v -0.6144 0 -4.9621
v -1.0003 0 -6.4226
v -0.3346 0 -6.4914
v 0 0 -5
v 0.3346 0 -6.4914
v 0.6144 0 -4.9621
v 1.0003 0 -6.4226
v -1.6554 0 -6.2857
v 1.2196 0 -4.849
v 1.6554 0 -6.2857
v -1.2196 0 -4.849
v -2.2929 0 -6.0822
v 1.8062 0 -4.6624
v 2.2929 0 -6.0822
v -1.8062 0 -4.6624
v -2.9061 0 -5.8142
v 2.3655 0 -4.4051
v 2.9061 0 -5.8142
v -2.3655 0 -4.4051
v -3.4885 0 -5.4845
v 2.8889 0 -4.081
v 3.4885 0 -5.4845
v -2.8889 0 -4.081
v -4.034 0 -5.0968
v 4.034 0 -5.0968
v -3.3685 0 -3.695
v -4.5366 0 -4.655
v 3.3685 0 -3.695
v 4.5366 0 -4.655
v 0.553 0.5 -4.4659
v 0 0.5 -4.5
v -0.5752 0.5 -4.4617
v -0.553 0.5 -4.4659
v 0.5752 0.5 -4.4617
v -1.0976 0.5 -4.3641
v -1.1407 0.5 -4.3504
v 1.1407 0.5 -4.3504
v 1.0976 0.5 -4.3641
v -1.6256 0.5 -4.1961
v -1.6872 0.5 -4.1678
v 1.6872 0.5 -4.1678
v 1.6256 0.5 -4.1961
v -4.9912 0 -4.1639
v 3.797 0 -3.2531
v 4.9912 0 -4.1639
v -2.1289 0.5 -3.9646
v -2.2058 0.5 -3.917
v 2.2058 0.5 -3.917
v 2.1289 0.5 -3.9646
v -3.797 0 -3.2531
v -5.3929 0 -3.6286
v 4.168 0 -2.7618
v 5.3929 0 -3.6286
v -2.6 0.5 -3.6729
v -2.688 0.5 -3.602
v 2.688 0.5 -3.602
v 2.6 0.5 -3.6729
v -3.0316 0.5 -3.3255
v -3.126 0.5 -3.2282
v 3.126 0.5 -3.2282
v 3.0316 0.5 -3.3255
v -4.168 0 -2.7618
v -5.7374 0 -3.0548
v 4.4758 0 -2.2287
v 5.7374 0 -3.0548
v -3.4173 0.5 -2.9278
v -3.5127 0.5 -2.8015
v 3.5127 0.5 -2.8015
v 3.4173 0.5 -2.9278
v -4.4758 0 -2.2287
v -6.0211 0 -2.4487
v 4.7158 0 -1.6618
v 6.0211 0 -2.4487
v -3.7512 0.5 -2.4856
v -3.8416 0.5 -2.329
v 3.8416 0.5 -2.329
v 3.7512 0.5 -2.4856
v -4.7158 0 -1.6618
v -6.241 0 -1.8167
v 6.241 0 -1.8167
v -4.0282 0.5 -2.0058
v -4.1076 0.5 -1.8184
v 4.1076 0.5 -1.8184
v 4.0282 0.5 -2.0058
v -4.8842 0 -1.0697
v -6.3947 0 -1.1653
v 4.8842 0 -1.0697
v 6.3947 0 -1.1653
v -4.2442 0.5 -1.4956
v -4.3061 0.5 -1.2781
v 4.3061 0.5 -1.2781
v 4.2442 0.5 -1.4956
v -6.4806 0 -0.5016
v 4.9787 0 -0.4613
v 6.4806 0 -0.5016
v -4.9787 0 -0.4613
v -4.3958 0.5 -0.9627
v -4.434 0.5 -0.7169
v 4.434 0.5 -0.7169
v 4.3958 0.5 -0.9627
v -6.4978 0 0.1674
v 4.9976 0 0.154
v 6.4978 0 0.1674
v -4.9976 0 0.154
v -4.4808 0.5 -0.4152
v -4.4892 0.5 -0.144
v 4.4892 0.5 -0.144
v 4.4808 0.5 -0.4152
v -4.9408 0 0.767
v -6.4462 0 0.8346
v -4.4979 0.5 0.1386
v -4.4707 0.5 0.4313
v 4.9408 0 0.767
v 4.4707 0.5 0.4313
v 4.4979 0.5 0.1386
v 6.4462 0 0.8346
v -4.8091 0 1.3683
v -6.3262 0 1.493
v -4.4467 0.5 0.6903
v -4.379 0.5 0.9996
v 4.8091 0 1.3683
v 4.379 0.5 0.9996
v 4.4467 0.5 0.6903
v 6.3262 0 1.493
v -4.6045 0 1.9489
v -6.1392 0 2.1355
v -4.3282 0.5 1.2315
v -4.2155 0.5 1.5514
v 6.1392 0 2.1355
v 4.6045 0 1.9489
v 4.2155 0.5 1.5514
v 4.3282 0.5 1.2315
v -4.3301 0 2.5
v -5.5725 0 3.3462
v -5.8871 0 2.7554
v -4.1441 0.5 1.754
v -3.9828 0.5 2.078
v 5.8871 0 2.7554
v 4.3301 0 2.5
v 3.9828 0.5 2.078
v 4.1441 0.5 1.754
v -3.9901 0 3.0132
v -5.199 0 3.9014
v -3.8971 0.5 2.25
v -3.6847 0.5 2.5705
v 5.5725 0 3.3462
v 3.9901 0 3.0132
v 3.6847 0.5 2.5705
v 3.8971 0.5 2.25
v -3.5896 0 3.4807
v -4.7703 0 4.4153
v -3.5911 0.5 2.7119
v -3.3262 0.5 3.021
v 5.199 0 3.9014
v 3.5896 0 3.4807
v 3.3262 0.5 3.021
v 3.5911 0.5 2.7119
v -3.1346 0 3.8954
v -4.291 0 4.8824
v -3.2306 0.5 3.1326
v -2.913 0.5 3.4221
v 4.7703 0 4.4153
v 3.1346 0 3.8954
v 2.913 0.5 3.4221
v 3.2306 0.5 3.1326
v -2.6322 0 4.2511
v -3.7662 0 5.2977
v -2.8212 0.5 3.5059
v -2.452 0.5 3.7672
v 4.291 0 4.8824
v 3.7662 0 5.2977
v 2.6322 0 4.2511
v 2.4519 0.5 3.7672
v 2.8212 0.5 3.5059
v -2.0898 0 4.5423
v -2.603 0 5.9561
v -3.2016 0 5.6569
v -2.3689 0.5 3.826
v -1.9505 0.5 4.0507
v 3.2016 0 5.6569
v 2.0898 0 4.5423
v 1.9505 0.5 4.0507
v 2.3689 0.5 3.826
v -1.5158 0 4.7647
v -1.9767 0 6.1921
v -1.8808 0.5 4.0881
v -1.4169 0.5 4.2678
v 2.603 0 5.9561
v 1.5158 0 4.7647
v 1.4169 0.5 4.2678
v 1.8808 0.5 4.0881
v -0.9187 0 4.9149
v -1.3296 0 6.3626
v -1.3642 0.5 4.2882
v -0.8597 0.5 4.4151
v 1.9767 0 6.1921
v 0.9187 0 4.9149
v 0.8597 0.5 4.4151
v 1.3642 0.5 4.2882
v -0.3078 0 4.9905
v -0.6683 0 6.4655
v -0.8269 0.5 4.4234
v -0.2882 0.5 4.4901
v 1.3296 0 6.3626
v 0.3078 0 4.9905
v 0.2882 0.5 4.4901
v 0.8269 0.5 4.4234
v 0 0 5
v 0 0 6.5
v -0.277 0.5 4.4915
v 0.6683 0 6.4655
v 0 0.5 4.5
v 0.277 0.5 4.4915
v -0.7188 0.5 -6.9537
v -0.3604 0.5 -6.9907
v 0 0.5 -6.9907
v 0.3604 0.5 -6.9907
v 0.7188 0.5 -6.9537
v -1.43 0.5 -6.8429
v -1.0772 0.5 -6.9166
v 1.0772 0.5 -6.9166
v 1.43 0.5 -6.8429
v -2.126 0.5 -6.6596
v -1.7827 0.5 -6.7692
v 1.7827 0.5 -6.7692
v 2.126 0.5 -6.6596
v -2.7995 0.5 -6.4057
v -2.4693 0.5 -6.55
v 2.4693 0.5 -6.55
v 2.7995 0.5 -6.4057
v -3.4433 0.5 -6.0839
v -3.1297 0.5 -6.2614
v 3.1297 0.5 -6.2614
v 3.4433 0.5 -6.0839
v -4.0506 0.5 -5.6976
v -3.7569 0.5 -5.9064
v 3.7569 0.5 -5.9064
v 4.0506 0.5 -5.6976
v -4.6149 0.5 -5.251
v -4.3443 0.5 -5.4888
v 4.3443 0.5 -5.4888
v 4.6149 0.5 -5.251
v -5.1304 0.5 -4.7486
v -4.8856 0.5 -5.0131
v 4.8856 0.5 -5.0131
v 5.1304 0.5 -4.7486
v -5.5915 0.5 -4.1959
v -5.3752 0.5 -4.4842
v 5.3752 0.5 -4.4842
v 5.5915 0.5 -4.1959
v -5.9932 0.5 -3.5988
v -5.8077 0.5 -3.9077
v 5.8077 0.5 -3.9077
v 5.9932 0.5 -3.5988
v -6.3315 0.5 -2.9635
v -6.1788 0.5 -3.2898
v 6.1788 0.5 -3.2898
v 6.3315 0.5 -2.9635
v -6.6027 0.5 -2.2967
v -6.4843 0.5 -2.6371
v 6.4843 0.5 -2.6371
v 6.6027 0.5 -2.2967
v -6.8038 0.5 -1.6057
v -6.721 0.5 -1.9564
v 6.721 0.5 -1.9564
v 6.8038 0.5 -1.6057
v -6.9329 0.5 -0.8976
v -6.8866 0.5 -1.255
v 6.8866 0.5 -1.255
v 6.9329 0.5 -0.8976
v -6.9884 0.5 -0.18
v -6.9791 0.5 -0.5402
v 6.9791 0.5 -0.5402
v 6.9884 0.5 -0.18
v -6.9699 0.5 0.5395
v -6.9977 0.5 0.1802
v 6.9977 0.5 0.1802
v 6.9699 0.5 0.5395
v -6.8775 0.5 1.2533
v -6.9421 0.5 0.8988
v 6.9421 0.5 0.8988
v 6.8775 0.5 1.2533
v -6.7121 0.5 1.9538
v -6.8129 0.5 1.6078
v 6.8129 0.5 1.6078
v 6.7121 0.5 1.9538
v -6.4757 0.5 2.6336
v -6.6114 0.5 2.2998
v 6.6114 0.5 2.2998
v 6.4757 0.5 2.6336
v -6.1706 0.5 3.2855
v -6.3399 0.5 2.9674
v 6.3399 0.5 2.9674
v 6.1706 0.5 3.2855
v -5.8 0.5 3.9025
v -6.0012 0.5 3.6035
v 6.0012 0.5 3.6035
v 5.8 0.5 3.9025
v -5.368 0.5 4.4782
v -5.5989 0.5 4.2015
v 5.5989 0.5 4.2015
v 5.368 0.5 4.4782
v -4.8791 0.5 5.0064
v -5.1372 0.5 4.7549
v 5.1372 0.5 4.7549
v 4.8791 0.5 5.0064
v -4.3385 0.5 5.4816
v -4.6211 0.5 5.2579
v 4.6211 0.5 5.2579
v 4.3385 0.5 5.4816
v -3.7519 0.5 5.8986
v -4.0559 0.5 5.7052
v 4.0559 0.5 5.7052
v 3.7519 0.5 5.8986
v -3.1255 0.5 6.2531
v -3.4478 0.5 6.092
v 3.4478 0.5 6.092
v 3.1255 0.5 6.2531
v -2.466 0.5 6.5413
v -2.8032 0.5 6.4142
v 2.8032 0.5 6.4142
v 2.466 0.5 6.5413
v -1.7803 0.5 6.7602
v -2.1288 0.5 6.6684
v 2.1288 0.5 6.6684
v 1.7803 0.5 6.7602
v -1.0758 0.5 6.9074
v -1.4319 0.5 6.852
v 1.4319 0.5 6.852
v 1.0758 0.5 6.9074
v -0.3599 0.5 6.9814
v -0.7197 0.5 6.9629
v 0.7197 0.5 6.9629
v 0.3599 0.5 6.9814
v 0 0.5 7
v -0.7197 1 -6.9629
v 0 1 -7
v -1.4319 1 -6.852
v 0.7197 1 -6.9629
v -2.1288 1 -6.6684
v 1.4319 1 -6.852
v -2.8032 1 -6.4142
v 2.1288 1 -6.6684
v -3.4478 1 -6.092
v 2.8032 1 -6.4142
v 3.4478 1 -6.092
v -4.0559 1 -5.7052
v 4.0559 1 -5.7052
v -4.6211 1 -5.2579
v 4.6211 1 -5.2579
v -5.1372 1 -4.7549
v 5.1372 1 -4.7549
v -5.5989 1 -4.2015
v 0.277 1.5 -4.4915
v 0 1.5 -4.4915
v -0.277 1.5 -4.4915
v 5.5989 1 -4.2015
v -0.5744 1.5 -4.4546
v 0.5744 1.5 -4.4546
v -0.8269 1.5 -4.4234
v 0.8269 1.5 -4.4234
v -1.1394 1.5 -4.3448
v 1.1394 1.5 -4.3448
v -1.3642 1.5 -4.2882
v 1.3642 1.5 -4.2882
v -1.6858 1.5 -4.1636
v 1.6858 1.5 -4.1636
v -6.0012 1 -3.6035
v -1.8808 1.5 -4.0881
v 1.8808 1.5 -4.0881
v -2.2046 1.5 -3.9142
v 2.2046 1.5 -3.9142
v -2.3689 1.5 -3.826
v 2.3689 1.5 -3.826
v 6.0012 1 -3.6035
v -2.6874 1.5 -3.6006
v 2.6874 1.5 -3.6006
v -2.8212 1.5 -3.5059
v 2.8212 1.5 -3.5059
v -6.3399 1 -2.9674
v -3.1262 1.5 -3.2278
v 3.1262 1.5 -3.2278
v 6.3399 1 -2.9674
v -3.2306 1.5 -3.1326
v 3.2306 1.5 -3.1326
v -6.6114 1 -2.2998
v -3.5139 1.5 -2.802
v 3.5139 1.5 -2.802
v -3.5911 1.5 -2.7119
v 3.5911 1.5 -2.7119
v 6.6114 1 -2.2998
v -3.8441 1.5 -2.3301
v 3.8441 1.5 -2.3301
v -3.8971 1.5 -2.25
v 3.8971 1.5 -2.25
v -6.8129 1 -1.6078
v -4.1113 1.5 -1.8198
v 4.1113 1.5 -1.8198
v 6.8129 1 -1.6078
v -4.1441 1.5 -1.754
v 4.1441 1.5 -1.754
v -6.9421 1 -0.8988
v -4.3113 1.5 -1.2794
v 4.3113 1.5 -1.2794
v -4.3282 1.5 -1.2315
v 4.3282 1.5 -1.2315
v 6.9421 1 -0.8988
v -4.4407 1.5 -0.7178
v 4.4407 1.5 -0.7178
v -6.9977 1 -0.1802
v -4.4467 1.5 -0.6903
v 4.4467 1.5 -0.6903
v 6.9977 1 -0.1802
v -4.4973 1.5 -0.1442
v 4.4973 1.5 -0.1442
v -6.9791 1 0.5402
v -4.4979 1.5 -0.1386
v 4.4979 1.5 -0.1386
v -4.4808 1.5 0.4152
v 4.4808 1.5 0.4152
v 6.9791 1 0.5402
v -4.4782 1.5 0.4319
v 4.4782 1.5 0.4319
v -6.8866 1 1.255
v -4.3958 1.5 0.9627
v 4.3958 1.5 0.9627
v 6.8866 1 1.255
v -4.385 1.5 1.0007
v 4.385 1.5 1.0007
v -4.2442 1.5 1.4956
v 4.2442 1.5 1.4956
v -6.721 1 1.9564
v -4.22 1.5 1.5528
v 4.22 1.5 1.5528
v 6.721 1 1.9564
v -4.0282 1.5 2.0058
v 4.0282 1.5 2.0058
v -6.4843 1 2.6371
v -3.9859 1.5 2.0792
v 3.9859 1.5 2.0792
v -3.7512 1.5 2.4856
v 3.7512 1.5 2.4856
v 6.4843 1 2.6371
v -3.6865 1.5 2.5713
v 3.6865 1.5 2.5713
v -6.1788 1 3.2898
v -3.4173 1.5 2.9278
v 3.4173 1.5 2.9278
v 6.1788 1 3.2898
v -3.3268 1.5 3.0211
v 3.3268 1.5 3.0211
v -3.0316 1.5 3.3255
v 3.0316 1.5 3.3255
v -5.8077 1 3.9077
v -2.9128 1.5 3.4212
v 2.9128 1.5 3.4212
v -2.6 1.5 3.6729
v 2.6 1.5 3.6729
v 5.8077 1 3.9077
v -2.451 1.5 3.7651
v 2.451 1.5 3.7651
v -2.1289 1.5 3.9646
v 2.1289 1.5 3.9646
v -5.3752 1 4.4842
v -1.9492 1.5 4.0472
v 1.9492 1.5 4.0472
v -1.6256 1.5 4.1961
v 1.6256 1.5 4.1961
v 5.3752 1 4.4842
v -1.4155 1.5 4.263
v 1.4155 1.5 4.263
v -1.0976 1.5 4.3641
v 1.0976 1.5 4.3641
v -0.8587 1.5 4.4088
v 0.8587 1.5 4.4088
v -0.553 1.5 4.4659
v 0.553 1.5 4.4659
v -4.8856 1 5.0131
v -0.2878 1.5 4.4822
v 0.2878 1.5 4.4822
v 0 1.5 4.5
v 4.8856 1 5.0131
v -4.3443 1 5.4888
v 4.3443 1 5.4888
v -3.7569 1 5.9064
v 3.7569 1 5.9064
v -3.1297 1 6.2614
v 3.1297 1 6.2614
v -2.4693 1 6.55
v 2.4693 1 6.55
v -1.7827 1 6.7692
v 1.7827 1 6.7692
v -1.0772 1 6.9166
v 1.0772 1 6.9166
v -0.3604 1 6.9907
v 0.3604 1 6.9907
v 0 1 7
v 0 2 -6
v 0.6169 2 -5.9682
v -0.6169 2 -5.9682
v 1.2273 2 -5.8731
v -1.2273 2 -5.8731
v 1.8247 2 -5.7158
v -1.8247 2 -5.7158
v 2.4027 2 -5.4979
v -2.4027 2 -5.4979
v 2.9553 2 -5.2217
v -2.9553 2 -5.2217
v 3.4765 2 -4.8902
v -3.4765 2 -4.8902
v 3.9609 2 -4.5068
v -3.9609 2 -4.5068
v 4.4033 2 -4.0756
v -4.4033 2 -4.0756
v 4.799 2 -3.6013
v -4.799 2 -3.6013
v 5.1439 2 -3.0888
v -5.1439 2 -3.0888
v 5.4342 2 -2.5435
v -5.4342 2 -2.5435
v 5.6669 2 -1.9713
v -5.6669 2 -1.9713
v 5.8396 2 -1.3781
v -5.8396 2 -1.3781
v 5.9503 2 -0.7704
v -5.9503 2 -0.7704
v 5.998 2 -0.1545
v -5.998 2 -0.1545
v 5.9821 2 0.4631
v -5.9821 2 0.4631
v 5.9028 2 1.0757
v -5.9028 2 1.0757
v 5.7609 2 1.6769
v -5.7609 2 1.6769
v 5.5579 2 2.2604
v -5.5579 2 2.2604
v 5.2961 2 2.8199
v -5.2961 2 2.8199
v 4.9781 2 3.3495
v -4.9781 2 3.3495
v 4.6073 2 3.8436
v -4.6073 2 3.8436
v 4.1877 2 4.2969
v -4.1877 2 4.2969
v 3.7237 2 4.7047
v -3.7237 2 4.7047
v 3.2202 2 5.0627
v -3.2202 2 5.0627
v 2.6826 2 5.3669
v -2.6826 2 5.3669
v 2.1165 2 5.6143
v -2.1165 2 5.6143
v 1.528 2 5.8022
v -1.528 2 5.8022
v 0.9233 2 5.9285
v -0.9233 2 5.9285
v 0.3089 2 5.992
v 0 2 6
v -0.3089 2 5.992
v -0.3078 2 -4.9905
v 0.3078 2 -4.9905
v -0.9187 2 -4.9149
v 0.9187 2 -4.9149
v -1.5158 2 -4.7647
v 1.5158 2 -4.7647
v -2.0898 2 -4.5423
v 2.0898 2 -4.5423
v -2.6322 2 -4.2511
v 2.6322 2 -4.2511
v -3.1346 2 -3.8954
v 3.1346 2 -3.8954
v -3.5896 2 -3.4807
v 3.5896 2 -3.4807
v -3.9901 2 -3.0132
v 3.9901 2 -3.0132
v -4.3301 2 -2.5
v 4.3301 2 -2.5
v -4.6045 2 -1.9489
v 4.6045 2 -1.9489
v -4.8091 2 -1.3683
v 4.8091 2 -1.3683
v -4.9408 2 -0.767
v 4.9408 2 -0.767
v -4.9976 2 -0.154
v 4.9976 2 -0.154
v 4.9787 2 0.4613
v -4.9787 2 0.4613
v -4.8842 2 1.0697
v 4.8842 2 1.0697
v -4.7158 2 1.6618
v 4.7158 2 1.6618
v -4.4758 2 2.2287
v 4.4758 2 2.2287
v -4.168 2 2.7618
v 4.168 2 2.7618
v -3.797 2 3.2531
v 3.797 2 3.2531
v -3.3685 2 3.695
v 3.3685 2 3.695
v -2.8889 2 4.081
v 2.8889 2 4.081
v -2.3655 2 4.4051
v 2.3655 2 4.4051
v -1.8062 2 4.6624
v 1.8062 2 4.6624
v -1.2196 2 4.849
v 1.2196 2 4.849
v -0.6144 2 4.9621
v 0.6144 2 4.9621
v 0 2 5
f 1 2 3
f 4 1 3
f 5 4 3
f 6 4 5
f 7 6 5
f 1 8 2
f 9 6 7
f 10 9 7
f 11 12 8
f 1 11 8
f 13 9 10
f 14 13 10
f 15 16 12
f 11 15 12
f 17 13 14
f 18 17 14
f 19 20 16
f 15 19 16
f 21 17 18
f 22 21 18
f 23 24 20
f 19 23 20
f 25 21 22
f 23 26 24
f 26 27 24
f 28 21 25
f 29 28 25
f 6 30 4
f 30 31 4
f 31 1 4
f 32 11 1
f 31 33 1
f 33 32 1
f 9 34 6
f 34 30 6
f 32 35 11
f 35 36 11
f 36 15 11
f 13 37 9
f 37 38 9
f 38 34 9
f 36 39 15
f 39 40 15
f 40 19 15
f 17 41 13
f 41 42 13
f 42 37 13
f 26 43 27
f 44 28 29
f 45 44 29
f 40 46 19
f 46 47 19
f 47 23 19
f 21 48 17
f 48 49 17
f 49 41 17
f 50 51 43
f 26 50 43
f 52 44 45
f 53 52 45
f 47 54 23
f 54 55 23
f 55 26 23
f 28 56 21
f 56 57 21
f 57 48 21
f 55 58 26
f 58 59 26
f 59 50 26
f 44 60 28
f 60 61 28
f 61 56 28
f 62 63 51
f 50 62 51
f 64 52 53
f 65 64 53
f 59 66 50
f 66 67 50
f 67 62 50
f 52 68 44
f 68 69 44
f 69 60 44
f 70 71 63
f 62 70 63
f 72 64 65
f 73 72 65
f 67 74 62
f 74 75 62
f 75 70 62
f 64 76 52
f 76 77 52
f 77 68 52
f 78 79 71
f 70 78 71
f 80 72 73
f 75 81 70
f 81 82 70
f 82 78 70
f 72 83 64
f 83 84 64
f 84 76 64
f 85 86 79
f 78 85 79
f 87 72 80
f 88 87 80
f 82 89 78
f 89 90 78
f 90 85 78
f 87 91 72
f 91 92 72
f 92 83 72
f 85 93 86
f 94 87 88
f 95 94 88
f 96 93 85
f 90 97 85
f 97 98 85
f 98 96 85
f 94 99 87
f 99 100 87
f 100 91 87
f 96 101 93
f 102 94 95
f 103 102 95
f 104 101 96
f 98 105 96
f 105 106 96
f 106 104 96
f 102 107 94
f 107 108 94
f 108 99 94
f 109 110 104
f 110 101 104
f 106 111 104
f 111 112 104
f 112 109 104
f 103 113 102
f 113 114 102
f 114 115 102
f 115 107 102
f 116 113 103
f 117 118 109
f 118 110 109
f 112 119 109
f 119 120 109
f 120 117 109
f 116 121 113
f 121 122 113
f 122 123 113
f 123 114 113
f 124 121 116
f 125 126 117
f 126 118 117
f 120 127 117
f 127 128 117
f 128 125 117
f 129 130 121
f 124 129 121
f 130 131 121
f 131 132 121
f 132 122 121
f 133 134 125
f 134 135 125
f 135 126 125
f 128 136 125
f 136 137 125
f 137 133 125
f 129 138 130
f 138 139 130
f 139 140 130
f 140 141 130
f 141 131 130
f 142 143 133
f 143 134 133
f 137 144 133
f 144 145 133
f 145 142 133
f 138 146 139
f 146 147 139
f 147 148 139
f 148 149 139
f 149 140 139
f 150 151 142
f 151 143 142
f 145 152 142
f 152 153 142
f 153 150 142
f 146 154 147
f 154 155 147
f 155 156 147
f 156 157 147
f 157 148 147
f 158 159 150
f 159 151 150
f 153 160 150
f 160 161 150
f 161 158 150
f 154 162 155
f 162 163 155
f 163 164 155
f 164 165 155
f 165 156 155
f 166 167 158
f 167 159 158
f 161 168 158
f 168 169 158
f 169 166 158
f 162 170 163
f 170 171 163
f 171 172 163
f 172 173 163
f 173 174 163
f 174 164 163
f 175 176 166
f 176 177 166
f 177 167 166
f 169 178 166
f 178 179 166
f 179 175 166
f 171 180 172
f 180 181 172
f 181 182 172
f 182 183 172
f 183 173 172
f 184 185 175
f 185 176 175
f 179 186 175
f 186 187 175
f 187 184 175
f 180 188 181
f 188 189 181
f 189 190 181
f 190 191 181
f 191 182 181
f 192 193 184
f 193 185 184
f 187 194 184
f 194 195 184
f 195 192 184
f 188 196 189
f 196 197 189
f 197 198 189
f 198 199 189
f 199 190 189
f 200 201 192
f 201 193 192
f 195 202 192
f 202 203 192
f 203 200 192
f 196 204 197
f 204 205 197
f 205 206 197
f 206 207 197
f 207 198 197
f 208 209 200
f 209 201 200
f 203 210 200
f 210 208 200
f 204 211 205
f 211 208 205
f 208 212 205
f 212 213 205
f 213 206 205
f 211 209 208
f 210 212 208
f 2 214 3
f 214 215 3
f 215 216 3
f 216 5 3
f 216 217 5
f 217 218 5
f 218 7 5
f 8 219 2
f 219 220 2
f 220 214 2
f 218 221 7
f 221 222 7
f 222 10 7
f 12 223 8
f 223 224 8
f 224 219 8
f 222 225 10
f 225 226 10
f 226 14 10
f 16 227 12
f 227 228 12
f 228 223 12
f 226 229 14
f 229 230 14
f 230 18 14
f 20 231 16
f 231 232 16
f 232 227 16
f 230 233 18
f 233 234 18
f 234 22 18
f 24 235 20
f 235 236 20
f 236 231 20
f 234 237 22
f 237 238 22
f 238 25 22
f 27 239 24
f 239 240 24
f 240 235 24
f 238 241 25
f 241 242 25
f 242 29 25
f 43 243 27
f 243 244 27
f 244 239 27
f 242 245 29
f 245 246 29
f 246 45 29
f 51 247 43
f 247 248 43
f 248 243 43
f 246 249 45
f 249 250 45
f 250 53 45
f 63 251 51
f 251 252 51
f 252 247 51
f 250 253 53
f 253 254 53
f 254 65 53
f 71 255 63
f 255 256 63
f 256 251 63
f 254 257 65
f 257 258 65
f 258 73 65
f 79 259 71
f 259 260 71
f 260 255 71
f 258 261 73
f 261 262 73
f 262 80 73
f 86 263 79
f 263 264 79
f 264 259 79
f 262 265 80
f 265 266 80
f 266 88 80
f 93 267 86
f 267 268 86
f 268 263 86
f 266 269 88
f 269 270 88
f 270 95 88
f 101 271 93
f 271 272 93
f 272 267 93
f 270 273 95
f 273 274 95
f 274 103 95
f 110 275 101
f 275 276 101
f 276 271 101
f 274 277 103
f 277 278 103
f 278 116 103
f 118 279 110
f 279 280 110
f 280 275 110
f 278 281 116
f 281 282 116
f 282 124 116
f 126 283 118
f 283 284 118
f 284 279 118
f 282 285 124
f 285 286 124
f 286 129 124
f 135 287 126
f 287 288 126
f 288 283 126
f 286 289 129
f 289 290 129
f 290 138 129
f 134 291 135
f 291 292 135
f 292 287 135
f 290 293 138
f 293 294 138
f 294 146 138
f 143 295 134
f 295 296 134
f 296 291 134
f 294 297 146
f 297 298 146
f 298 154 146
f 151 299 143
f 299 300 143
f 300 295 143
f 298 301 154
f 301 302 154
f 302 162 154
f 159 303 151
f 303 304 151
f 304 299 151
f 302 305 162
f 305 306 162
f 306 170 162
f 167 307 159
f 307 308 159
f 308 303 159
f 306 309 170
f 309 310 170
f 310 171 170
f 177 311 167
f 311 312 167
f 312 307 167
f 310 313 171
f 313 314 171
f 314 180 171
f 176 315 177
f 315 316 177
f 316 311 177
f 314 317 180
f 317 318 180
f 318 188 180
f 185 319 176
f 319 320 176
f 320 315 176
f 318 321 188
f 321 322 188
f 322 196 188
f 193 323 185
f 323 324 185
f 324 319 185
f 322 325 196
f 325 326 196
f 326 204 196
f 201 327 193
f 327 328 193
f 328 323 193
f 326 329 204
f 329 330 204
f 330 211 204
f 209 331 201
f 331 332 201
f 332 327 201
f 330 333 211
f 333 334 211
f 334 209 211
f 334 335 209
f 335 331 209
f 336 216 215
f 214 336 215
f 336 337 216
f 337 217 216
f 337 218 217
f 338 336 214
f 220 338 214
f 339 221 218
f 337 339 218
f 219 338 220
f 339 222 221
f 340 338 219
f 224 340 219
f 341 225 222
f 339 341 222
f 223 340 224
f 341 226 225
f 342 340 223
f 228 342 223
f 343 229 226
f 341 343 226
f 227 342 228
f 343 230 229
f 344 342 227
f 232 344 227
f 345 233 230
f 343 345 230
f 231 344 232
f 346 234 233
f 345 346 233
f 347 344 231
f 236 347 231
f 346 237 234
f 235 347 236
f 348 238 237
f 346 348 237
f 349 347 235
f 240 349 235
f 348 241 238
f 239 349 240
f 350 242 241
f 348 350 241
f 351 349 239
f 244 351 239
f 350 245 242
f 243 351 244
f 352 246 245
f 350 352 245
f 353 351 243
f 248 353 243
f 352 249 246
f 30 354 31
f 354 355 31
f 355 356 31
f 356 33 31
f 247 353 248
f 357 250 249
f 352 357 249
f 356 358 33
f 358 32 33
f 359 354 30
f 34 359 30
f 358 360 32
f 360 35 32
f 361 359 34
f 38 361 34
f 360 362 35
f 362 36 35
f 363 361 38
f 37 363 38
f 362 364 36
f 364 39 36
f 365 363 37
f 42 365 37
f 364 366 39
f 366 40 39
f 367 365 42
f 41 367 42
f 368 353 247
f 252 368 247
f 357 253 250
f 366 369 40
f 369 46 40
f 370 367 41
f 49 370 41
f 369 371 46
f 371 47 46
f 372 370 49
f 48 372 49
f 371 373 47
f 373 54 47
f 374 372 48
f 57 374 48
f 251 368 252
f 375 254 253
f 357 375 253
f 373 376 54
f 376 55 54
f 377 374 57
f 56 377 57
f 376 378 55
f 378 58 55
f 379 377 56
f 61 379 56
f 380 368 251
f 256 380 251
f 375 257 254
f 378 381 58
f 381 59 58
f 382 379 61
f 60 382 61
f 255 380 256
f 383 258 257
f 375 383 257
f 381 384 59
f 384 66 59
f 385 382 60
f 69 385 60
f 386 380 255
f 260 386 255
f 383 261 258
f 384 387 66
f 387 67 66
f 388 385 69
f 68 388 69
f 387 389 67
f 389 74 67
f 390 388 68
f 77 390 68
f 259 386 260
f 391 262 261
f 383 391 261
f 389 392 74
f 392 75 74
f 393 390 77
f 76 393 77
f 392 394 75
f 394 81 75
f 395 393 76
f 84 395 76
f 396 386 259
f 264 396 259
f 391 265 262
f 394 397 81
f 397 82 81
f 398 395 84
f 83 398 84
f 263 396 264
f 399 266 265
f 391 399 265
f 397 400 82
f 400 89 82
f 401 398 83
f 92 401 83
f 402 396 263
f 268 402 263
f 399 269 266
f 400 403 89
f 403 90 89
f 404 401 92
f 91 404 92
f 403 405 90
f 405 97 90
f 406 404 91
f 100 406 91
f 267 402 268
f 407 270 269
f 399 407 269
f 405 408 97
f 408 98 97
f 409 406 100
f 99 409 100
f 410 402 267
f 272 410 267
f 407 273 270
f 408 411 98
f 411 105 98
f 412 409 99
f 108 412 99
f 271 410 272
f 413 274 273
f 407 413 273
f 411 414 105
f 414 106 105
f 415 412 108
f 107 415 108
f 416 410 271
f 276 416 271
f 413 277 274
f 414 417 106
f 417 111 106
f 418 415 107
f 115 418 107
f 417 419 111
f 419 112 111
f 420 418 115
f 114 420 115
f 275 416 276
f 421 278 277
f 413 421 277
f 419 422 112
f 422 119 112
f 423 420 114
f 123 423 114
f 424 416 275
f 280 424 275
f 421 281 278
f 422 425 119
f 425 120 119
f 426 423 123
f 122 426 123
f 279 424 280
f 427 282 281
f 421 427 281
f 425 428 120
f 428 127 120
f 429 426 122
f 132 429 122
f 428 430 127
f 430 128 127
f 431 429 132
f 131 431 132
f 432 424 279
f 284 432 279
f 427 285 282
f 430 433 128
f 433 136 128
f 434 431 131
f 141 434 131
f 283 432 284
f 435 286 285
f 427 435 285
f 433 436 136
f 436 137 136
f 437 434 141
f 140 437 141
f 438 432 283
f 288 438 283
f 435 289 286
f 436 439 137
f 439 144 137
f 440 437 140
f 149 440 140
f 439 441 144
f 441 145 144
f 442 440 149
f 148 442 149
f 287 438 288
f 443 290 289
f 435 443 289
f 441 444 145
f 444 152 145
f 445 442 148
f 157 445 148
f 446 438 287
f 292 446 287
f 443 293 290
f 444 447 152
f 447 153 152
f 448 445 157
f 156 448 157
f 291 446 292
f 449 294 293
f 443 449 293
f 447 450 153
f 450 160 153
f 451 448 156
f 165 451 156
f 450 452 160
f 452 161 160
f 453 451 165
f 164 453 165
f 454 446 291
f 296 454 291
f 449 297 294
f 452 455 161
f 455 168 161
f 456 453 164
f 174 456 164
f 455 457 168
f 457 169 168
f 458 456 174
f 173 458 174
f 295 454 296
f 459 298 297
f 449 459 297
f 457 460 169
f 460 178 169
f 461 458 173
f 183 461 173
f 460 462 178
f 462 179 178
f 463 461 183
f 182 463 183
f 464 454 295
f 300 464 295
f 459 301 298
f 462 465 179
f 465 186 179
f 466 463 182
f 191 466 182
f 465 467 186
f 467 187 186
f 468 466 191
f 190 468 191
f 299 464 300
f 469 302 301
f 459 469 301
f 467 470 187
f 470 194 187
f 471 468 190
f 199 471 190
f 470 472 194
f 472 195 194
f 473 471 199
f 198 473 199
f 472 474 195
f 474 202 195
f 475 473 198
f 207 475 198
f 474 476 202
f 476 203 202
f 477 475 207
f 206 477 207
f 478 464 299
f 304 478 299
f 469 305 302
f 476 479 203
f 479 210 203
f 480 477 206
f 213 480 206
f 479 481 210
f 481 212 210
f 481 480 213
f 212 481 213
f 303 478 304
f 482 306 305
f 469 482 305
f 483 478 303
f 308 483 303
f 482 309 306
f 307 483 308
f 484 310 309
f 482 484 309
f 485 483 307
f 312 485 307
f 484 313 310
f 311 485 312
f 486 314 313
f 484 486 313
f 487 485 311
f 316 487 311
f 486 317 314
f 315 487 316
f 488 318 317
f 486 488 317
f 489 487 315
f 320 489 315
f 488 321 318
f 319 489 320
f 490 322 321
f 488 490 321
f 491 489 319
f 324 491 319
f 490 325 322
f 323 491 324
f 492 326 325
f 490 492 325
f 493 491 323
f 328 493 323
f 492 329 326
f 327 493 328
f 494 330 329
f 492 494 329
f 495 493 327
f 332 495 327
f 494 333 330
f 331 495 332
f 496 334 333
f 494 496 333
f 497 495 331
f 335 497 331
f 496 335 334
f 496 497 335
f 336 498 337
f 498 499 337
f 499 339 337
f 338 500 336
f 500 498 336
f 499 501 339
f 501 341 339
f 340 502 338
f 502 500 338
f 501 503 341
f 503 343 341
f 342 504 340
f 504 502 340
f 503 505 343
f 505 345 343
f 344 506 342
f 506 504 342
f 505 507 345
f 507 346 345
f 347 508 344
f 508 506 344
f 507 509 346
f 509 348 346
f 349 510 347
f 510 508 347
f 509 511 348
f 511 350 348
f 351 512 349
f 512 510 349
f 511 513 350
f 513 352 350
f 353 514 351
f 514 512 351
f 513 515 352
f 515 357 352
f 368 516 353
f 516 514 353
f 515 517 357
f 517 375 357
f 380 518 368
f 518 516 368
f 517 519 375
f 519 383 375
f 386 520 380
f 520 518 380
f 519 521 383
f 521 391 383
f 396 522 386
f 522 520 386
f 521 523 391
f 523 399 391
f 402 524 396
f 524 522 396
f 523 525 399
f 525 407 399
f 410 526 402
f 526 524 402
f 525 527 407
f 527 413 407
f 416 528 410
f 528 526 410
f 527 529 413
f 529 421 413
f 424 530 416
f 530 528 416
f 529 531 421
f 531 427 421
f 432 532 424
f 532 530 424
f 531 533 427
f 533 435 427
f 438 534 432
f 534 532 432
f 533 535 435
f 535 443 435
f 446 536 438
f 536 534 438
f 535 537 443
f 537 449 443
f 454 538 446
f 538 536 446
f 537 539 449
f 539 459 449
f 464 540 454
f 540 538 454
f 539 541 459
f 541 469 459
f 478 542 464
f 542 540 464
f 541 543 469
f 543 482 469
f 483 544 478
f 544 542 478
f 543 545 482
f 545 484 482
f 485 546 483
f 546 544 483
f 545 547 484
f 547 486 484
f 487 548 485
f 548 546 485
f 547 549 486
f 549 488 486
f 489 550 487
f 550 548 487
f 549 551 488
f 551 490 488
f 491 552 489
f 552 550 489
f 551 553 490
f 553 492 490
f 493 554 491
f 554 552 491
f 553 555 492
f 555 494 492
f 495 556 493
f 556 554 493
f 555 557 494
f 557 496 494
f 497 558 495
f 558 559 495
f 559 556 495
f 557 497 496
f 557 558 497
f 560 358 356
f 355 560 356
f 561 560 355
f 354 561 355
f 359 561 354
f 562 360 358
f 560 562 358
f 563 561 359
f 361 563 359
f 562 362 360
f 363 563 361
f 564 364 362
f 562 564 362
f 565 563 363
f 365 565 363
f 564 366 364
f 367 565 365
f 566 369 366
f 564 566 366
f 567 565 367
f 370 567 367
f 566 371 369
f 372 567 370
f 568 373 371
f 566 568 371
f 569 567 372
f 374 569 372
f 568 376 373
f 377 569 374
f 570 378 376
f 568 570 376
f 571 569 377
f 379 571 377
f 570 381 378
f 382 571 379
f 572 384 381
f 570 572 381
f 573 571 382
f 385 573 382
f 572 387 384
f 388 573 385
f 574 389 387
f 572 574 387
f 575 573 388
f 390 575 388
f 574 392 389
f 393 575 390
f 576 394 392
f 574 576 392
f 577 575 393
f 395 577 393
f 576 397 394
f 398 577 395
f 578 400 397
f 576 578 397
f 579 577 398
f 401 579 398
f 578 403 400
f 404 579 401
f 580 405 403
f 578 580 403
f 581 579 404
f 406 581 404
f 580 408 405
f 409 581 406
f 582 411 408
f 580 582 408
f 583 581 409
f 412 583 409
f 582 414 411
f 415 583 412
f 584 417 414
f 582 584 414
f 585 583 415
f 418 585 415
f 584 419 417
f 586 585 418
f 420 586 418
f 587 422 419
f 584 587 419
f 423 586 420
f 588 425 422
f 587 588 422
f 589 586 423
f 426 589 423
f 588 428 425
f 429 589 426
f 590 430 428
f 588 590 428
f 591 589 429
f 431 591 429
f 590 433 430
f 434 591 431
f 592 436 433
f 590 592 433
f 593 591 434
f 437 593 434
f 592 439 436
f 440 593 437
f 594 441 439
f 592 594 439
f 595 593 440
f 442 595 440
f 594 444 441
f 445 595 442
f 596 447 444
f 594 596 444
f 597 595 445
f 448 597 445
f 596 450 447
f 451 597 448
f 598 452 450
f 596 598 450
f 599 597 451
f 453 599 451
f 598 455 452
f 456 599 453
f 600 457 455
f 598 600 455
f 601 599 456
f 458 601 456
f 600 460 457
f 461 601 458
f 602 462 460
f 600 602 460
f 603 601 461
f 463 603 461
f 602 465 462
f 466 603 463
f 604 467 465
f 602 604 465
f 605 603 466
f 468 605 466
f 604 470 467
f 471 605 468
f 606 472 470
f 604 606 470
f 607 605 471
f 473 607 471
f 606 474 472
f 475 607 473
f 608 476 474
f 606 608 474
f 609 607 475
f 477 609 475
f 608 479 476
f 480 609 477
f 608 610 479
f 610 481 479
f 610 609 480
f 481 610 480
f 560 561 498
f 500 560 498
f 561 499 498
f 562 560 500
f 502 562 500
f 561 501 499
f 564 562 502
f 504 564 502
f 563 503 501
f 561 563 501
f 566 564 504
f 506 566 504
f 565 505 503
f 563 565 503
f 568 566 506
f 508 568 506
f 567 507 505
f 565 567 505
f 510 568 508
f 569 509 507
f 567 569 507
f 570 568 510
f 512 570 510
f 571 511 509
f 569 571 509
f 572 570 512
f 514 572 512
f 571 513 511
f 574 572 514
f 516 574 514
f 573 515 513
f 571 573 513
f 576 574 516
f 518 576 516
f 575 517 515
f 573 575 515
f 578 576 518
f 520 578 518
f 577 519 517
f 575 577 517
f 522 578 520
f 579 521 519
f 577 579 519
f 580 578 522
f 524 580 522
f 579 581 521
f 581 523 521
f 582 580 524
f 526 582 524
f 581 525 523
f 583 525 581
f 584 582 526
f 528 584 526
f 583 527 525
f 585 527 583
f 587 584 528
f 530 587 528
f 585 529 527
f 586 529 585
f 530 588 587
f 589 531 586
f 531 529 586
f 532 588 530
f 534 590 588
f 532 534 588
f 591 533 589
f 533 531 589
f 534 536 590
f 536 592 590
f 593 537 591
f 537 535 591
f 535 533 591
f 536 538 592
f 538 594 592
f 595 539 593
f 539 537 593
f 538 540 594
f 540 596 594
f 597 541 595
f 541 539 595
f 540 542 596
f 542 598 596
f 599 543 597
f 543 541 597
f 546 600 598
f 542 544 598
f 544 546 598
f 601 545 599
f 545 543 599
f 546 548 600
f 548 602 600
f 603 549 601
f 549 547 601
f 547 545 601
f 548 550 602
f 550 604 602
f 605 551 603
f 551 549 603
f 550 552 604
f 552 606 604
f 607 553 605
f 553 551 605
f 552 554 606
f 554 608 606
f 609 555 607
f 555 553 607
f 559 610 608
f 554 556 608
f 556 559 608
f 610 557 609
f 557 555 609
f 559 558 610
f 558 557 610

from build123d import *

# Parameters (mm, degrees)
SKETCH1_R           = 7
SKETCH1_R_2         = 4.5
BOSS_EXTRUDE1_DEPTH = 2
CHAMFER1_SIZE       = 1
CHAMFER2_SIZE       = 0.5


with BuildPart() as part:
    # Sketch1 → Boss-Extrude1 (new body)
    with BuildSketch(Plane(origin=(0, 0, 0), x_dir=(1, 0, 0), z_dir=(0, 1, 0))):
        Circle(SKETCH1_R)
        Circle(SKETCH1_R_2, mode=Mode.SUBTRACT)
    extrude(amount=BOSS_EXTRUDE1_DEPTH)

    # Chamfer1
    chamfer1_edges = [part.edges().sort_by_distance(p)[0] for p in [
        (-7, 2, 0),
    ]]
    chamfer(chamfer1_edges, length=CHAMFER1_SIZE)

    # Chamfer2
    chamfer2_edges = [part.edges().sort_by_distance(p)[0] for p in [
        (-7, 0, 0),
        (-4.5, 0, 0),
        (-4.5, 2, 0),
    ]]
    chamfer(chamfer2_edges, length=CHAMFER2_SIZE)


solid = part.part
